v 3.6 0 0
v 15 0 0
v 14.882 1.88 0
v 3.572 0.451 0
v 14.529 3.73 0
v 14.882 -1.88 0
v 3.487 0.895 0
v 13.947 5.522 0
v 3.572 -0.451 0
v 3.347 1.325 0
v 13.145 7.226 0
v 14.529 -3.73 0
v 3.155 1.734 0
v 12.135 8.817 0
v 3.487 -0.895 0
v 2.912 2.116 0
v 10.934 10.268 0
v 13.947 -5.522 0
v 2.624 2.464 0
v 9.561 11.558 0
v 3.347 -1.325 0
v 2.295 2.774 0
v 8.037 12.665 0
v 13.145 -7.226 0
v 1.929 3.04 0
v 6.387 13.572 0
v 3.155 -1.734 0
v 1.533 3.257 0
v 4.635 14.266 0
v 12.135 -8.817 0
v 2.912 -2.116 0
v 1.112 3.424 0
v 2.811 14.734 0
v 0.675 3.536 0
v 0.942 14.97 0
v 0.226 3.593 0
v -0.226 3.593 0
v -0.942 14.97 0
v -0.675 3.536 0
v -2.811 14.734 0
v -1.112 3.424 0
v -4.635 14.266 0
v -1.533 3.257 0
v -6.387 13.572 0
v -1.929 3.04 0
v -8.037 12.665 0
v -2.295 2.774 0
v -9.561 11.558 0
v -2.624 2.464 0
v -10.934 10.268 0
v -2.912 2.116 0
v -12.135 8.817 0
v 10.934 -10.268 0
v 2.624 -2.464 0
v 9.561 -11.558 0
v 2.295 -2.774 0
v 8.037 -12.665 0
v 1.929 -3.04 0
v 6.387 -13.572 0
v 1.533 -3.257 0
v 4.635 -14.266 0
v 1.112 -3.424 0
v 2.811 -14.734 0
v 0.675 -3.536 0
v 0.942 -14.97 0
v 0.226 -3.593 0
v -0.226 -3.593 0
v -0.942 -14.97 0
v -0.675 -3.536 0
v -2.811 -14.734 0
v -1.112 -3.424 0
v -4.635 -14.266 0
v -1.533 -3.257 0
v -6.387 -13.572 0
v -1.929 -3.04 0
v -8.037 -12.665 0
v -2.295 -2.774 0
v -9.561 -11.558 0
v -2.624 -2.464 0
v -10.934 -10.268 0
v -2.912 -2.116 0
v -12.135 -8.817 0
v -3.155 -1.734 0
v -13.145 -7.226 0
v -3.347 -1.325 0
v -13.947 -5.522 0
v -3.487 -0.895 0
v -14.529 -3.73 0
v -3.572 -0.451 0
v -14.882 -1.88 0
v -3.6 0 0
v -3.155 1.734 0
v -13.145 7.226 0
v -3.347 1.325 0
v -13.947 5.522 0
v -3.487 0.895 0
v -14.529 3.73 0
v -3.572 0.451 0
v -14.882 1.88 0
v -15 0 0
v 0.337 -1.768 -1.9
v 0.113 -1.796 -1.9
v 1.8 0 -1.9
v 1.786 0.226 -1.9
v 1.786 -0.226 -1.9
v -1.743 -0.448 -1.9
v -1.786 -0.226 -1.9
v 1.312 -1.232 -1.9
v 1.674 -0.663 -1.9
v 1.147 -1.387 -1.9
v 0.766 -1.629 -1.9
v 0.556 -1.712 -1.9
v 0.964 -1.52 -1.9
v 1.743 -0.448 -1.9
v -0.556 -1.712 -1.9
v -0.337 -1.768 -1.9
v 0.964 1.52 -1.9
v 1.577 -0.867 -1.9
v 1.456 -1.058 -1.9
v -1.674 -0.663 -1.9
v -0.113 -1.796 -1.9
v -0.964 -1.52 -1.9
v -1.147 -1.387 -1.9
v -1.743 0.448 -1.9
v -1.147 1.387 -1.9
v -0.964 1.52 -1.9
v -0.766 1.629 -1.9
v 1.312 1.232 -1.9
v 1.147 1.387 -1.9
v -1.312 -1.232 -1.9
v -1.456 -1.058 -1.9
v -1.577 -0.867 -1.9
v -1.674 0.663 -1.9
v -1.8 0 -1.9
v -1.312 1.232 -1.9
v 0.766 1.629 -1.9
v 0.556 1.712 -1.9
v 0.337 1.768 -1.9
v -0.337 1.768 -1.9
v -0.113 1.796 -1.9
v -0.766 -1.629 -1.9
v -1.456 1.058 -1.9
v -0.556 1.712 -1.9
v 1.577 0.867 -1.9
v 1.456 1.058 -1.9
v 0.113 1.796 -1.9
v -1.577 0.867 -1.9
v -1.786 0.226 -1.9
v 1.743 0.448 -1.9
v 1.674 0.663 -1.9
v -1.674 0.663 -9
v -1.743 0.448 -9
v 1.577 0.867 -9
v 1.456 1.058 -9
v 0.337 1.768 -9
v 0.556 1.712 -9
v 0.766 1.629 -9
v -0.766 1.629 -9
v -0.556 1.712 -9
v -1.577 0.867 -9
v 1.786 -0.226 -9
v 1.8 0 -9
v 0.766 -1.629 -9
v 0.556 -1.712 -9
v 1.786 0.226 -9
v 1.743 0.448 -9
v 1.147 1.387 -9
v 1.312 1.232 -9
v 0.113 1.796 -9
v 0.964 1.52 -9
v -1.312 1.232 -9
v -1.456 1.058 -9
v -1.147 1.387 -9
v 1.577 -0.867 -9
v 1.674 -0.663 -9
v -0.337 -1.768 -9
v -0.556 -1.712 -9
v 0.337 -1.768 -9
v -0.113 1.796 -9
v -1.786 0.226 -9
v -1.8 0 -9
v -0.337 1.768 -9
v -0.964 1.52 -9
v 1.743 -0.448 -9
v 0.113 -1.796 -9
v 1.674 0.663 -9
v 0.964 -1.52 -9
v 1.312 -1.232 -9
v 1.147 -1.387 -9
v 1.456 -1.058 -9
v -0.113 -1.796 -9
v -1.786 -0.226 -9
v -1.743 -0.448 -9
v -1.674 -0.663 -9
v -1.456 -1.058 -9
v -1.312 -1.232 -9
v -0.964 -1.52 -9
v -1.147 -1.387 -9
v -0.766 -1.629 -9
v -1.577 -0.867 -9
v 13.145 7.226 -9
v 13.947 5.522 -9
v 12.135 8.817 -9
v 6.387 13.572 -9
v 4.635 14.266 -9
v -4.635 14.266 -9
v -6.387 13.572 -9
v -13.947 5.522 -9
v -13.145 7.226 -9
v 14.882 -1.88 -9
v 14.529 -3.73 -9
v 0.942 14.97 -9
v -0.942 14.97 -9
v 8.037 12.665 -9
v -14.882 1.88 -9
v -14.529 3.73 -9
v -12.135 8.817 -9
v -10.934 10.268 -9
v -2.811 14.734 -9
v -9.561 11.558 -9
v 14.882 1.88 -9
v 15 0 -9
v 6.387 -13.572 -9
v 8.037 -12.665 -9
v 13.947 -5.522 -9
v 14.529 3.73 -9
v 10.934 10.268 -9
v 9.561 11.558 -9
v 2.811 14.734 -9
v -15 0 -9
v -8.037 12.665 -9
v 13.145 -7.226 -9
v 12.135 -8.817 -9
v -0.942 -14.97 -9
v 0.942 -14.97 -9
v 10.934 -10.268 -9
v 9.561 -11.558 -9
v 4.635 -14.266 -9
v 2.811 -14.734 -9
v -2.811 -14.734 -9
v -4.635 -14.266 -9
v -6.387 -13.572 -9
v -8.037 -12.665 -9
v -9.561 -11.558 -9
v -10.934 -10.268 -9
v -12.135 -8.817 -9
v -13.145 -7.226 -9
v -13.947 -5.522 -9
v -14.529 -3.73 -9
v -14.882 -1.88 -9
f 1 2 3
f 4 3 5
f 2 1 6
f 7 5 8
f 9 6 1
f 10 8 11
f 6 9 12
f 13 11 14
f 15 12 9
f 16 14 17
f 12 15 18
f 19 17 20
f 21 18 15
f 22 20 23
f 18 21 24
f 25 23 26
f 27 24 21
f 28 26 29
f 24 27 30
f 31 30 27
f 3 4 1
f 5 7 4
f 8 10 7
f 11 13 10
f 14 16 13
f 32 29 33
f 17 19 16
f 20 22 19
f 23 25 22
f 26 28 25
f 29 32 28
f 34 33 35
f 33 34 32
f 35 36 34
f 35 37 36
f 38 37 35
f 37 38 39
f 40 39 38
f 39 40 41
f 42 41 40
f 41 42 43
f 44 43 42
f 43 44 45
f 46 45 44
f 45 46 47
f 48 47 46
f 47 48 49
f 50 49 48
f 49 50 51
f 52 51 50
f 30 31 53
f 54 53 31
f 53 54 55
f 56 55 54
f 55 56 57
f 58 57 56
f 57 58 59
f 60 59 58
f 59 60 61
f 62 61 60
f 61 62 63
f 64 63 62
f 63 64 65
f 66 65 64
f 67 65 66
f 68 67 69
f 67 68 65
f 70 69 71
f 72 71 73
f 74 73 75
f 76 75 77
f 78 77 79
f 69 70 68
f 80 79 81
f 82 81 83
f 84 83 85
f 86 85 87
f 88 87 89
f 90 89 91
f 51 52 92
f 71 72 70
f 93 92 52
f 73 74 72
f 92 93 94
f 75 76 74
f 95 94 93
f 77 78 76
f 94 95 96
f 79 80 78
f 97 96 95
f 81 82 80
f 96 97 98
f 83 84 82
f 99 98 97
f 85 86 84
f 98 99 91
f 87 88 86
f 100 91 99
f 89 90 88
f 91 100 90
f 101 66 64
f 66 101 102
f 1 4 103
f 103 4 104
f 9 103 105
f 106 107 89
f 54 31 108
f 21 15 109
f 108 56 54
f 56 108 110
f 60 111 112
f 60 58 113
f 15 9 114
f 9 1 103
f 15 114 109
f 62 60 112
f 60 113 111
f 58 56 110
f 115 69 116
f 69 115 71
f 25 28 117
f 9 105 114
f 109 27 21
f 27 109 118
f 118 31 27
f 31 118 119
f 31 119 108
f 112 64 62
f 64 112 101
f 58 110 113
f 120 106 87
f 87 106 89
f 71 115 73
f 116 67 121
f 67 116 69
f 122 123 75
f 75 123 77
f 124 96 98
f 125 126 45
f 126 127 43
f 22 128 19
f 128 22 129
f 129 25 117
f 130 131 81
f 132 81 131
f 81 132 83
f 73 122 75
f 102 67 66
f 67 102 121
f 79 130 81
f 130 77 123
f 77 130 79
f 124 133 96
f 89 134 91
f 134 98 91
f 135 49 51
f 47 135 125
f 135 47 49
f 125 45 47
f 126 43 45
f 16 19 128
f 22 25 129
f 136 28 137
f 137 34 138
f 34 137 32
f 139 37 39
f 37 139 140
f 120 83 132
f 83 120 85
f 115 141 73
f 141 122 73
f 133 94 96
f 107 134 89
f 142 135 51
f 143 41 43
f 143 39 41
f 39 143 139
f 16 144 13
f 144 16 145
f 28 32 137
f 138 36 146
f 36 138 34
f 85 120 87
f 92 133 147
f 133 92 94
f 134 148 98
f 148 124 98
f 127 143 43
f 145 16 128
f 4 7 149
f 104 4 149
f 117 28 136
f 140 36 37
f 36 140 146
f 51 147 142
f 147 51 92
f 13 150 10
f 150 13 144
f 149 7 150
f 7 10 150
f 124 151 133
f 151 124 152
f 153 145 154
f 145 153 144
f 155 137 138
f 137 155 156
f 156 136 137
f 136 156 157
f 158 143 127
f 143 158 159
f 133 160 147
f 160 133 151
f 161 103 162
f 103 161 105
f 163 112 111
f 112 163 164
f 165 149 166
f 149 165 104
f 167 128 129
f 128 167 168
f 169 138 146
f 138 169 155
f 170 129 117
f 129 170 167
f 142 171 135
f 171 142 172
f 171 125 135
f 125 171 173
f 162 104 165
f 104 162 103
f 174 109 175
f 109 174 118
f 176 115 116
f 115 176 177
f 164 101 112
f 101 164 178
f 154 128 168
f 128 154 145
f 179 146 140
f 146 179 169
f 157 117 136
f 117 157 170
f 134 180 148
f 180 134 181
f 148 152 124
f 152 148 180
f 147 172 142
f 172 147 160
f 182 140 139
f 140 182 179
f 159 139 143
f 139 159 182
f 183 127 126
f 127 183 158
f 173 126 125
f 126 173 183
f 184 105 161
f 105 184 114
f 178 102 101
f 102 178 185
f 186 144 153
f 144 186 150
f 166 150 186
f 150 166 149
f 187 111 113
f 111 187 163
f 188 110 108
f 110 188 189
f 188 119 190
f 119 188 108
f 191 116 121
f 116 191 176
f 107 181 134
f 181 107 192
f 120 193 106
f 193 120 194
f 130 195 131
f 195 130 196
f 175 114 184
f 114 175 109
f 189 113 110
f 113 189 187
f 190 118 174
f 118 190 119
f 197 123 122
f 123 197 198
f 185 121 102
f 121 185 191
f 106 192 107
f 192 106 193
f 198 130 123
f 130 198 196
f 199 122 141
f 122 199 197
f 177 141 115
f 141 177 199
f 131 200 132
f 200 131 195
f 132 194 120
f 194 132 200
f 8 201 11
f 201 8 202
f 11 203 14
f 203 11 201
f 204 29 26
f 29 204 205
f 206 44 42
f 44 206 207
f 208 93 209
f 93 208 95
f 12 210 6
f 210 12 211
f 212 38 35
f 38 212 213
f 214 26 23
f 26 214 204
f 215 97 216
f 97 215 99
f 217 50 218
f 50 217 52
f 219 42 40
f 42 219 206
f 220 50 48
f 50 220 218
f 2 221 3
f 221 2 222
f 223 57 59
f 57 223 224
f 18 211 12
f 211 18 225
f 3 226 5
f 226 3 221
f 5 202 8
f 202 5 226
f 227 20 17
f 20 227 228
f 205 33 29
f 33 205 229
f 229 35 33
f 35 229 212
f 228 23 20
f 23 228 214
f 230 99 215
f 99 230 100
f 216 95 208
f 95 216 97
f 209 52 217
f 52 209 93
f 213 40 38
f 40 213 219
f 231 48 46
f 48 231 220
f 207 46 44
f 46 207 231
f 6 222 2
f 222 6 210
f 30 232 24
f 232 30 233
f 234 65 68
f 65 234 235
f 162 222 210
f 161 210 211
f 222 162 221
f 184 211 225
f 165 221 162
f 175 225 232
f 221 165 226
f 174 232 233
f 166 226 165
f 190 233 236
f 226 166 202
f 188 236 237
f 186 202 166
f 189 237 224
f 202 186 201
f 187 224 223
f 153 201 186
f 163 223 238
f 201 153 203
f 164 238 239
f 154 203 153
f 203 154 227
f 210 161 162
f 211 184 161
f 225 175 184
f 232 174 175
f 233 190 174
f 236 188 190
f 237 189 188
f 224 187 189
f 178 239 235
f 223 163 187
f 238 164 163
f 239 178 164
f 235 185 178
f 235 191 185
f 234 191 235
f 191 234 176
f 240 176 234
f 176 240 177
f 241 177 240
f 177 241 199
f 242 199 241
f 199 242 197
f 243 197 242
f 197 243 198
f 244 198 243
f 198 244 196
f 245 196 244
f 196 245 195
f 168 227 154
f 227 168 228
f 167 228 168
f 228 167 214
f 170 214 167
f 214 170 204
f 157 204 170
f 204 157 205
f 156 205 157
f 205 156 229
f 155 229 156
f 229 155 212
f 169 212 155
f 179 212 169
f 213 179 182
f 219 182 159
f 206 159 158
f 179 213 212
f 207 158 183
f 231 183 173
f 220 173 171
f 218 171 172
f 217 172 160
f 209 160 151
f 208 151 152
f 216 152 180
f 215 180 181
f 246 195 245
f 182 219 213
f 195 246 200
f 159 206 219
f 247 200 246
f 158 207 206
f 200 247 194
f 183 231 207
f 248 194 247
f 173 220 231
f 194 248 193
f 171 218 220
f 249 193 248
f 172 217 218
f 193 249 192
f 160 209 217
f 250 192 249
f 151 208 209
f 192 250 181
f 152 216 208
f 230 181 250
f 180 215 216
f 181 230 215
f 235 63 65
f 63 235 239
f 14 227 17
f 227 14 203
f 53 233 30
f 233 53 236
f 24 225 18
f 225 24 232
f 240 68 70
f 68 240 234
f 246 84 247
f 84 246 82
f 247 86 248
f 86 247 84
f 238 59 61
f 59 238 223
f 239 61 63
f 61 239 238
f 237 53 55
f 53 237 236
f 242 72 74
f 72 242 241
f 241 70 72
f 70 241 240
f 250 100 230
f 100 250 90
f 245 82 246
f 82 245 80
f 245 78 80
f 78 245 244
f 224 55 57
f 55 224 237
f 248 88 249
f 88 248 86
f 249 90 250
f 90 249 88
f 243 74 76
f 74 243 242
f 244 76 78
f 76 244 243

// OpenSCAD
$fn = 50;


difference() {
	union() {
		translate(v = [0, 0, -9.0000000000]) {
			cylinder(h = 9, r = 15.0000000000);
		}
	}
	union() {
		translate(v = [0, 0, 0]) {
			rotate(a = [0, 0, 0]) {
				difference() {
					union() {
						translate(v = [0, 0, -12.0000000000]) {
							cylinder(h = 12, r = 1.5000000000);
						}
						translate(v = [0, 0, -1.9000000000]) {
							cylinder(h = 1.9000000000, r1 = 1.8000000000, r2 = 3.6000000000);
						}
						translate(v = [0, 0, -12.0000000000]) {
							cylinder(h = 12, r = 1.8000000000);
						}
						translate(v = [0, 0, -12.0000000000]) {
							cylinder(h = 12, r = 1.5000000000);
						}
					}
					union();
				}
			}
		}
	}
}
